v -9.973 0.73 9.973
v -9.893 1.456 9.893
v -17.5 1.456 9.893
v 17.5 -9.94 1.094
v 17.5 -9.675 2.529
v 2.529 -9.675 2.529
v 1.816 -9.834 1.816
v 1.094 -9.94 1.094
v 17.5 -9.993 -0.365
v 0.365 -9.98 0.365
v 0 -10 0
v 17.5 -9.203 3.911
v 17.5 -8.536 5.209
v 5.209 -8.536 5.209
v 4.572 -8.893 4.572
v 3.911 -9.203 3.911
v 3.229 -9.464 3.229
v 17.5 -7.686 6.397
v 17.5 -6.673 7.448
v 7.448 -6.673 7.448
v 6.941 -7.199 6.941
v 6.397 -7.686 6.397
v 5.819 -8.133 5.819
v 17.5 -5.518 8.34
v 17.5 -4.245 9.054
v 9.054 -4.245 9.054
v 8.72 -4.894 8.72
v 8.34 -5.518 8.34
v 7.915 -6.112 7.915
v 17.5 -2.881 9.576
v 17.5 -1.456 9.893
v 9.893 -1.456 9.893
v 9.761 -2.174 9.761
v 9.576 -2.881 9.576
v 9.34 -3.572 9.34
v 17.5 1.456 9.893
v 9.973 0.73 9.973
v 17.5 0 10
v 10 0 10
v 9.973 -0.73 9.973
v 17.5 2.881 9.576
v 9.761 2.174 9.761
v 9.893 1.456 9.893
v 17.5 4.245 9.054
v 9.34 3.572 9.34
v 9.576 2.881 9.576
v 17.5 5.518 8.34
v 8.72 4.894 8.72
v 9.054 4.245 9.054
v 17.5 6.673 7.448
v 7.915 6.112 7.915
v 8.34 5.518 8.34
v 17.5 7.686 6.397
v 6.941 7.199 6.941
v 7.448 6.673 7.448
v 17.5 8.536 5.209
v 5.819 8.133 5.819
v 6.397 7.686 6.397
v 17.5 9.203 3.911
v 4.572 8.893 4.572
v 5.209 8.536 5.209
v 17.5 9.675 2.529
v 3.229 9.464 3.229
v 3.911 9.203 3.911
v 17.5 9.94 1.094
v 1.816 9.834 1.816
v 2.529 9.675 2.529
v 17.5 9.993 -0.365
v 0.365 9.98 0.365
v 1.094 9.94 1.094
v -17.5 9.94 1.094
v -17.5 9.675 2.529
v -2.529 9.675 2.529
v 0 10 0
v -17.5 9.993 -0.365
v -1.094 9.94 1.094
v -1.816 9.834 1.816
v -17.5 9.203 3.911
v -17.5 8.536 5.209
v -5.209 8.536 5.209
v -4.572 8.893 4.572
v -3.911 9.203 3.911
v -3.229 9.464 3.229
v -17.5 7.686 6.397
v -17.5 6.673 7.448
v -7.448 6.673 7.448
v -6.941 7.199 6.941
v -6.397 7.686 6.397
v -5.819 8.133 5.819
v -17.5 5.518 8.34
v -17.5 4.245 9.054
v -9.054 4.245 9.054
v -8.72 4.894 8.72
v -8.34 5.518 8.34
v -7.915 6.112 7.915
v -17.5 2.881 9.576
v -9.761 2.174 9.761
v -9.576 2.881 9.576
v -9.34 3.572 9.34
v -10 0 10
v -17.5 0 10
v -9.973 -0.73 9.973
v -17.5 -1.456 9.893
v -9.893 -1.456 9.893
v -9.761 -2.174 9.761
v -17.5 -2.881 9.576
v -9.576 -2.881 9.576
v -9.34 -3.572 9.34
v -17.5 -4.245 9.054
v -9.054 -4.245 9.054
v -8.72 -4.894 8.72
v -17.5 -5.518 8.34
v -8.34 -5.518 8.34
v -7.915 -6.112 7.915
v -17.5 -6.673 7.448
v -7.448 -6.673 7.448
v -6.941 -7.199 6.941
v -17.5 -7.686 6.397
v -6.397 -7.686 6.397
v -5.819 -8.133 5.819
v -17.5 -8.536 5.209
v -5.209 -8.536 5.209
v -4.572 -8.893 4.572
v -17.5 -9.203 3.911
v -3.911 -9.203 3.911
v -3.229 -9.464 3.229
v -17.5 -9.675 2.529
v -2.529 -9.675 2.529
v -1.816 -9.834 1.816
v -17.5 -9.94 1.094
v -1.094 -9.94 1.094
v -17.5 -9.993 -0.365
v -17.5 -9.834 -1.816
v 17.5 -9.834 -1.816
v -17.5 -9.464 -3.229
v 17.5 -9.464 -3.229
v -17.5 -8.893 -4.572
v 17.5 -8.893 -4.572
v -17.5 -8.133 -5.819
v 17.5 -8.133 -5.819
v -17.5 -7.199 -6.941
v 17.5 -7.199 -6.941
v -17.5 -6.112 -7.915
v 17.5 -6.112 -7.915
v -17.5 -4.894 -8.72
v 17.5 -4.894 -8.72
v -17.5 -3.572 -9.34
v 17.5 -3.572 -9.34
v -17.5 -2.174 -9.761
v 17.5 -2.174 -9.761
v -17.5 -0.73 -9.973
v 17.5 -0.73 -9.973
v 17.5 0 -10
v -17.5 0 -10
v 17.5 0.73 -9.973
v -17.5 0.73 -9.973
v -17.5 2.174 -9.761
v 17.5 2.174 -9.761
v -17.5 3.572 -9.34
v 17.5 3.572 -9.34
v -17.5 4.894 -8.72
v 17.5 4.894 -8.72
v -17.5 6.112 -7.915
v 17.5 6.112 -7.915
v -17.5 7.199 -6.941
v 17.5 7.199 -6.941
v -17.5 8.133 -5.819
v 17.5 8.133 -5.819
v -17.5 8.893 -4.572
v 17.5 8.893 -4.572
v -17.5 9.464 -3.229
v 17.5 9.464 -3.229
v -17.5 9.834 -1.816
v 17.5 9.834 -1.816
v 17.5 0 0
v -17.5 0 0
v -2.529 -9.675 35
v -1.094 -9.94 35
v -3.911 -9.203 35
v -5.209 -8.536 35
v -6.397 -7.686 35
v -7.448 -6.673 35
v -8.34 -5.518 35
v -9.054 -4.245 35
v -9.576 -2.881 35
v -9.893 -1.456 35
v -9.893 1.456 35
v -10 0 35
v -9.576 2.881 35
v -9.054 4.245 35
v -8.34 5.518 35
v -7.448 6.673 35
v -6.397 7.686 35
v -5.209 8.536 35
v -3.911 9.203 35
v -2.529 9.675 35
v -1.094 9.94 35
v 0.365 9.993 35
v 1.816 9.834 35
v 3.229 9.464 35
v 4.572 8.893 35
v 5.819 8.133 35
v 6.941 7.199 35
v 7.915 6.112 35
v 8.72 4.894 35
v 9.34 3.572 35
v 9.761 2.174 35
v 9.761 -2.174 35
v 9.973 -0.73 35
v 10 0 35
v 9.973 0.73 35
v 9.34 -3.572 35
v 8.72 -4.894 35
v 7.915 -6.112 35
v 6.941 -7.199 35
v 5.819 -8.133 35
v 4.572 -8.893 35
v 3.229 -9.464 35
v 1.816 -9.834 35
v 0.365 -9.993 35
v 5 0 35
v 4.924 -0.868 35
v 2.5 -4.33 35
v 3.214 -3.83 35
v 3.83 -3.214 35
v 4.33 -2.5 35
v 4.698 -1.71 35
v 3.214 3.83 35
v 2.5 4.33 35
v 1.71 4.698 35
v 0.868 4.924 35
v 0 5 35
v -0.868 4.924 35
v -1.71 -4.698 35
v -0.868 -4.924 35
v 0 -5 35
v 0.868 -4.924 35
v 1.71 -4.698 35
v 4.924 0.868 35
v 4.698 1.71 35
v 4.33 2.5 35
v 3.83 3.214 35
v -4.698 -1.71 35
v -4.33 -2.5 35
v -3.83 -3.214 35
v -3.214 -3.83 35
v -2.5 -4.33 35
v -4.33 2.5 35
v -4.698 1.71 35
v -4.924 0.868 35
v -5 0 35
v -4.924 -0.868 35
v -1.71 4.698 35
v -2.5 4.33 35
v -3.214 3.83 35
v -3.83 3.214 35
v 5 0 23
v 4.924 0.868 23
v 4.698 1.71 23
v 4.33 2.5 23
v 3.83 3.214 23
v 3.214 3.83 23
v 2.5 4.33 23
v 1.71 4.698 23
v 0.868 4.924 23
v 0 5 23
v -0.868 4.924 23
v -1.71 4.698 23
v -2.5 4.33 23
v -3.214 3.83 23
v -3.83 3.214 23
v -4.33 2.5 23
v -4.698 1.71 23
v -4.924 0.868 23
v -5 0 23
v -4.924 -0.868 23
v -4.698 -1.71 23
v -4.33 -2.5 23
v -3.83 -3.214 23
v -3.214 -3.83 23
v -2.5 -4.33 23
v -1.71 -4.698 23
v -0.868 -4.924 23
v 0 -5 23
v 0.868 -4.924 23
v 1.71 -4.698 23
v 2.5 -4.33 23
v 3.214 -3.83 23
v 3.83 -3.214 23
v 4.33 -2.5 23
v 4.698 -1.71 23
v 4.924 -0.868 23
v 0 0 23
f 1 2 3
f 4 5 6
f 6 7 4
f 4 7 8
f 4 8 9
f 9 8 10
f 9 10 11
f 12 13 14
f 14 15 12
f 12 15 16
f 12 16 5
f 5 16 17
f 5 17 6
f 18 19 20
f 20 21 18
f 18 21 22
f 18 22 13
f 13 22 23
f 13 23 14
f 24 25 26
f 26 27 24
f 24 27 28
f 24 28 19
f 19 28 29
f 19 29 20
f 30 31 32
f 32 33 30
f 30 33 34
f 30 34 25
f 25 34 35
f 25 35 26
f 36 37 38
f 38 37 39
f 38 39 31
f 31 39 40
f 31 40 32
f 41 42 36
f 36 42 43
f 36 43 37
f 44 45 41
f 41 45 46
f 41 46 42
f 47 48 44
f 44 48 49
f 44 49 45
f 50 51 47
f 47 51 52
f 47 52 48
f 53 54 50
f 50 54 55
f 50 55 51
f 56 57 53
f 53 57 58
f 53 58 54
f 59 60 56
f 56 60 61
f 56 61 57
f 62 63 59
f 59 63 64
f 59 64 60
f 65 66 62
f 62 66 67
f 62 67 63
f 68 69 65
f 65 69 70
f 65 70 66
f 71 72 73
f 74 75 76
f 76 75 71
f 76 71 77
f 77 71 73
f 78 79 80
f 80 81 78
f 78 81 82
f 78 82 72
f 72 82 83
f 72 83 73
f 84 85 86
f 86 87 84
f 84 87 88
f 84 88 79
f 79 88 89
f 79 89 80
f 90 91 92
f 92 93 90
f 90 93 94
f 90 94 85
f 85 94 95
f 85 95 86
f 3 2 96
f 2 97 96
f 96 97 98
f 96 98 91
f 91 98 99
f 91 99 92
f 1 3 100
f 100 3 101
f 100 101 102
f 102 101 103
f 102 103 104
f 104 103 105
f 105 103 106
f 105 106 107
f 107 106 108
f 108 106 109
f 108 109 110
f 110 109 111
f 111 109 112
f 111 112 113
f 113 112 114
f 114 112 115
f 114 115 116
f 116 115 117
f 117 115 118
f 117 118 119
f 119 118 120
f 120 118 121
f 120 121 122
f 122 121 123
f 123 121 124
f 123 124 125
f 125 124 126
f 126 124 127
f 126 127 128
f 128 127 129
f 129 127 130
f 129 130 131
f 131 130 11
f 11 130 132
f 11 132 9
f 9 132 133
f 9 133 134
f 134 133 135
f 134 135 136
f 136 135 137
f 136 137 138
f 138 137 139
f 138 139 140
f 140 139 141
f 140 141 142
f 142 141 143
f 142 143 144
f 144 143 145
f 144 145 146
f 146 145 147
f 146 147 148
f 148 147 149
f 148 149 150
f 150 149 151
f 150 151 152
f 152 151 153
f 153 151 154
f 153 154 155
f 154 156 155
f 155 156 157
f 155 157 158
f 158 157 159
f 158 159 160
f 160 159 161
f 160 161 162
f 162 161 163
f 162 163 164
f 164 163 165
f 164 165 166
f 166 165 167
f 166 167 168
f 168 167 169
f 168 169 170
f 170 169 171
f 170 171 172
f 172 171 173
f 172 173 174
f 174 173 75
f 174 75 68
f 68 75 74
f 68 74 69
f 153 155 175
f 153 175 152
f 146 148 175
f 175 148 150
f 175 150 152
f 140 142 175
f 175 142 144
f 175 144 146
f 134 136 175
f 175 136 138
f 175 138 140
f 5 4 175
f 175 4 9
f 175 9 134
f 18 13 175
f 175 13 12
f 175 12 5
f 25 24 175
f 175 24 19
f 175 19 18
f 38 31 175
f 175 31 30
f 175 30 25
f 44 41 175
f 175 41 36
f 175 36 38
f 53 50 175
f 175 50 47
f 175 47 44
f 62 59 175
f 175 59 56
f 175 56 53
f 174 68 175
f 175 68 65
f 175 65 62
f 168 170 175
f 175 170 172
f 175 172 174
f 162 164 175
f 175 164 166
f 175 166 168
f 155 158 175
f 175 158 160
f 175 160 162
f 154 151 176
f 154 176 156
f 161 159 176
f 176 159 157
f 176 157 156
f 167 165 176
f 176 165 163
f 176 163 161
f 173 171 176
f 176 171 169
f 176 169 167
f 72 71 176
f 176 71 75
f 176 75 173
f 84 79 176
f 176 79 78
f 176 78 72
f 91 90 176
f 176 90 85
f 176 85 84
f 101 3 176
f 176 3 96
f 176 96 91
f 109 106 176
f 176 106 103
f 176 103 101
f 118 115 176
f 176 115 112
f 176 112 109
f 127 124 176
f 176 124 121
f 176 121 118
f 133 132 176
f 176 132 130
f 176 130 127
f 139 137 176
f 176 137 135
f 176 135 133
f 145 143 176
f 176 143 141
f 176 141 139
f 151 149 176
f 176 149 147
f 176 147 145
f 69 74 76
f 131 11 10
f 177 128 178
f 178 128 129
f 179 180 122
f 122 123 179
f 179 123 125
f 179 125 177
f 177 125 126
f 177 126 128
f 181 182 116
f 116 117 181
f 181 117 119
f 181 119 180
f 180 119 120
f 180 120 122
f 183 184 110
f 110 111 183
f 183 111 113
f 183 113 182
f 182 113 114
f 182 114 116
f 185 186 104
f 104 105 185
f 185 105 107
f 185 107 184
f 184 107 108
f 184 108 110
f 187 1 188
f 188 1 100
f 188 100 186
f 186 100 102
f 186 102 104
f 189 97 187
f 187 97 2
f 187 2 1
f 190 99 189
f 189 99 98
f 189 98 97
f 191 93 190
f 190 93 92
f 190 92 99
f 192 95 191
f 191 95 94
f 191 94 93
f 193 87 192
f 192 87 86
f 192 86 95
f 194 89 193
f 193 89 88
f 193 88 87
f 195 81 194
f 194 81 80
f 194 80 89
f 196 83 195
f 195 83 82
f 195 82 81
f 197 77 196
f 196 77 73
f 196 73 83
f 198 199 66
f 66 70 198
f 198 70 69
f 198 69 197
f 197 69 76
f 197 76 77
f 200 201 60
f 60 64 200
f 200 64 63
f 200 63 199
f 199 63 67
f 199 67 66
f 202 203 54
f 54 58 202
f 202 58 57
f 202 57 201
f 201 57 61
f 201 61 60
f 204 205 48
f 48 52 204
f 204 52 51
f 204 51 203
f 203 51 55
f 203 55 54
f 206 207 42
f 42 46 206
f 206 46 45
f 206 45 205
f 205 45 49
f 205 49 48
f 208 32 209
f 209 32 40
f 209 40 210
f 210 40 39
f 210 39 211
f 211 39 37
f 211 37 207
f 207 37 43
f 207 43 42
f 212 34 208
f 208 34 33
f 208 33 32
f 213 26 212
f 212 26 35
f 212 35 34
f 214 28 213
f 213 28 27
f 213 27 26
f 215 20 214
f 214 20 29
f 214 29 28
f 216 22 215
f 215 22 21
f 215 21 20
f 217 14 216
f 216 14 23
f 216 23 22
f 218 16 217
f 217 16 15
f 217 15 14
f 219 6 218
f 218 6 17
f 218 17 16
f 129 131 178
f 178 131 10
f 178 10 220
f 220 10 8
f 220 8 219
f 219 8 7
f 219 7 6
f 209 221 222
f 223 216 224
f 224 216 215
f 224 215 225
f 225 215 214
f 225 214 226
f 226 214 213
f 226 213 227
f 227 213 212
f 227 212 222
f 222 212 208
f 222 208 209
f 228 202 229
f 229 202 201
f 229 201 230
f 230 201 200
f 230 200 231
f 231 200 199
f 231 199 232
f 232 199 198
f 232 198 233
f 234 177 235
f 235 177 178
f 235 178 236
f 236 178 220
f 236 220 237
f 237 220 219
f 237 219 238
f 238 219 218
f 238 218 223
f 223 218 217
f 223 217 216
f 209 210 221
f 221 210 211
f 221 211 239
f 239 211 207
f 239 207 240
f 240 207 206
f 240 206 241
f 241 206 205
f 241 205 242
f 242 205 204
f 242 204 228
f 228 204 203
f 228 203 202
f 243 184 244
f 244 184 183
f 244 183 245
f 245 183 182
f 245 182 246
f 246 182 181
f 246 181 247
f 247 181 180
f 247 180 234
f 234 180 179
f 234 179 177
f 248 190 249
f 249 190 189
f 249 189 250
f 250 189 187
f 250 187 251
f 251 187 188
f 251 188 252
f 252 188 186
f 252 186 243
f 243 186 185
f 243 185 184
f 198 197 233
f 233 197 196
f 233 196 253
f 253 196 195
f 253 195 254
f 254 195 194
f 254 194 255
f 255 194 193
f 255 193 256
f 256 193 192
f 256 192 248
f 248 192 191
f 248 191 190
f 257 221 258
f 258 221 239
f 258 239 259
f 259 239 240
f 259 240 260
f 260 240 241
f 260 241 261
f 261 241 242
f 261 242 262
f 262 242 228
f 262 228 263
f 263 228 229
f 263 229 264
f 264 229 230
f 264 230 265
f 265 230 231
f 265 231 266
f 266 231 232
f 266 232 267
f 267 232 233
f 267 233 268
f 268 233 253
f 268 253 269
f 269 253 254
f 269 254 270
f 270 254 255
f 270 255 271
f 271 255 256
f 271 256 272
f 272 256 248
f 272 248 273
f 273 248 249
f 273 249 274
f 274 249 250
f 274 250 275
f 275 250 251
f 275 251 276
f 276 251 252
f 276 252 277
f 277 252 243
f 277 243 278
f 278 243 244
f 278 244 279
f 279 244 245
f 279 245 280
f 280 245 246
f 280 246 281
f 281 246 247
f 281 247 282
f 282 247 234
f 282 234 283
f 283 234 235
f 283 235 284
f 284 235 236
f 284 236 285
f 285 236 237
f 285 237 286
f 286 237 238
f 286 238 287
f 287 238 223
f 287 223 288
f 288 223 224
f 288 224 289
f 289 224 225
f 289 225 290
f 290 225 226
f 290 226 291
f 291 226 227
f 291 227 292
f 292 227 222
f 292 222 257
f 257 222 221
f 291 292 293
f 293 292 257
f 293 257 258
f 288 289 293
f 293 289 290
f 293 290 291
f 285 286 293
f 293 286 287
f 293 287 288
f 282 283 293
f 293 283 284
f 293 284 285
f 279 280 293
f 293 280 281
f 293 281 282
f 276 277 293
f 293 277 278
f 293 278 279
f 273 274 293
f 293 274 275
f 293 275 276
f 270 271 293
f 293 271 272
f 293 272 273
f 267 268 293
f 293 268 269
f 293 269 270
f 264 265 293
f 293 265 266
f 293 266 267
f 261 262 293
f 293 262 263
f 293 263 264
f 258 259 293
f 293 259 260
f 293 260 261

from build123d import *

# Parameters (mm, degrees)
SKETCH_22_R         = 10
EXTRUDE_12_DEPTH    = 17.5
SKETCH_25_R         = 10
EXTRUDE_13_DEPTH    = 35
SKETCH_26_R         = 5
CUT_EXTRUDE_6_DEPTH = 12


with BuildPart() as part:
    # 草图22 → 凸台-拉伸12 (new, symmetric)
    with BuildSketch(Plane(origin=(0, 0, 0), x_dir=(0, 0, -1), z_dir=(1, 0, 0))):
        Circle(SKETCH_22_R)
    extrude(amount=EXTRUDE_12_DEPTH, both=True)

    # 草图25 → 凸台-拉伸13 (add)
    with BuildSketch(Plane.XY):
        with Locations(Location((0, 0, 0), (0, 0, 90))):
            Circle(SKETCH_25_R)
    extrude(amount=EXTRUDE_13_DEPTH)

    # 草图26 → 切除-拉伸6 (cut)
    with BuildSketch(Plane.XY.offset(35)):
        Circle(SKETCH_26_R)
    extrude(amount=-CUT_EXTRUDE_6_DEPTH, mode=Mode.SUBTRACT)


solid = part.part
